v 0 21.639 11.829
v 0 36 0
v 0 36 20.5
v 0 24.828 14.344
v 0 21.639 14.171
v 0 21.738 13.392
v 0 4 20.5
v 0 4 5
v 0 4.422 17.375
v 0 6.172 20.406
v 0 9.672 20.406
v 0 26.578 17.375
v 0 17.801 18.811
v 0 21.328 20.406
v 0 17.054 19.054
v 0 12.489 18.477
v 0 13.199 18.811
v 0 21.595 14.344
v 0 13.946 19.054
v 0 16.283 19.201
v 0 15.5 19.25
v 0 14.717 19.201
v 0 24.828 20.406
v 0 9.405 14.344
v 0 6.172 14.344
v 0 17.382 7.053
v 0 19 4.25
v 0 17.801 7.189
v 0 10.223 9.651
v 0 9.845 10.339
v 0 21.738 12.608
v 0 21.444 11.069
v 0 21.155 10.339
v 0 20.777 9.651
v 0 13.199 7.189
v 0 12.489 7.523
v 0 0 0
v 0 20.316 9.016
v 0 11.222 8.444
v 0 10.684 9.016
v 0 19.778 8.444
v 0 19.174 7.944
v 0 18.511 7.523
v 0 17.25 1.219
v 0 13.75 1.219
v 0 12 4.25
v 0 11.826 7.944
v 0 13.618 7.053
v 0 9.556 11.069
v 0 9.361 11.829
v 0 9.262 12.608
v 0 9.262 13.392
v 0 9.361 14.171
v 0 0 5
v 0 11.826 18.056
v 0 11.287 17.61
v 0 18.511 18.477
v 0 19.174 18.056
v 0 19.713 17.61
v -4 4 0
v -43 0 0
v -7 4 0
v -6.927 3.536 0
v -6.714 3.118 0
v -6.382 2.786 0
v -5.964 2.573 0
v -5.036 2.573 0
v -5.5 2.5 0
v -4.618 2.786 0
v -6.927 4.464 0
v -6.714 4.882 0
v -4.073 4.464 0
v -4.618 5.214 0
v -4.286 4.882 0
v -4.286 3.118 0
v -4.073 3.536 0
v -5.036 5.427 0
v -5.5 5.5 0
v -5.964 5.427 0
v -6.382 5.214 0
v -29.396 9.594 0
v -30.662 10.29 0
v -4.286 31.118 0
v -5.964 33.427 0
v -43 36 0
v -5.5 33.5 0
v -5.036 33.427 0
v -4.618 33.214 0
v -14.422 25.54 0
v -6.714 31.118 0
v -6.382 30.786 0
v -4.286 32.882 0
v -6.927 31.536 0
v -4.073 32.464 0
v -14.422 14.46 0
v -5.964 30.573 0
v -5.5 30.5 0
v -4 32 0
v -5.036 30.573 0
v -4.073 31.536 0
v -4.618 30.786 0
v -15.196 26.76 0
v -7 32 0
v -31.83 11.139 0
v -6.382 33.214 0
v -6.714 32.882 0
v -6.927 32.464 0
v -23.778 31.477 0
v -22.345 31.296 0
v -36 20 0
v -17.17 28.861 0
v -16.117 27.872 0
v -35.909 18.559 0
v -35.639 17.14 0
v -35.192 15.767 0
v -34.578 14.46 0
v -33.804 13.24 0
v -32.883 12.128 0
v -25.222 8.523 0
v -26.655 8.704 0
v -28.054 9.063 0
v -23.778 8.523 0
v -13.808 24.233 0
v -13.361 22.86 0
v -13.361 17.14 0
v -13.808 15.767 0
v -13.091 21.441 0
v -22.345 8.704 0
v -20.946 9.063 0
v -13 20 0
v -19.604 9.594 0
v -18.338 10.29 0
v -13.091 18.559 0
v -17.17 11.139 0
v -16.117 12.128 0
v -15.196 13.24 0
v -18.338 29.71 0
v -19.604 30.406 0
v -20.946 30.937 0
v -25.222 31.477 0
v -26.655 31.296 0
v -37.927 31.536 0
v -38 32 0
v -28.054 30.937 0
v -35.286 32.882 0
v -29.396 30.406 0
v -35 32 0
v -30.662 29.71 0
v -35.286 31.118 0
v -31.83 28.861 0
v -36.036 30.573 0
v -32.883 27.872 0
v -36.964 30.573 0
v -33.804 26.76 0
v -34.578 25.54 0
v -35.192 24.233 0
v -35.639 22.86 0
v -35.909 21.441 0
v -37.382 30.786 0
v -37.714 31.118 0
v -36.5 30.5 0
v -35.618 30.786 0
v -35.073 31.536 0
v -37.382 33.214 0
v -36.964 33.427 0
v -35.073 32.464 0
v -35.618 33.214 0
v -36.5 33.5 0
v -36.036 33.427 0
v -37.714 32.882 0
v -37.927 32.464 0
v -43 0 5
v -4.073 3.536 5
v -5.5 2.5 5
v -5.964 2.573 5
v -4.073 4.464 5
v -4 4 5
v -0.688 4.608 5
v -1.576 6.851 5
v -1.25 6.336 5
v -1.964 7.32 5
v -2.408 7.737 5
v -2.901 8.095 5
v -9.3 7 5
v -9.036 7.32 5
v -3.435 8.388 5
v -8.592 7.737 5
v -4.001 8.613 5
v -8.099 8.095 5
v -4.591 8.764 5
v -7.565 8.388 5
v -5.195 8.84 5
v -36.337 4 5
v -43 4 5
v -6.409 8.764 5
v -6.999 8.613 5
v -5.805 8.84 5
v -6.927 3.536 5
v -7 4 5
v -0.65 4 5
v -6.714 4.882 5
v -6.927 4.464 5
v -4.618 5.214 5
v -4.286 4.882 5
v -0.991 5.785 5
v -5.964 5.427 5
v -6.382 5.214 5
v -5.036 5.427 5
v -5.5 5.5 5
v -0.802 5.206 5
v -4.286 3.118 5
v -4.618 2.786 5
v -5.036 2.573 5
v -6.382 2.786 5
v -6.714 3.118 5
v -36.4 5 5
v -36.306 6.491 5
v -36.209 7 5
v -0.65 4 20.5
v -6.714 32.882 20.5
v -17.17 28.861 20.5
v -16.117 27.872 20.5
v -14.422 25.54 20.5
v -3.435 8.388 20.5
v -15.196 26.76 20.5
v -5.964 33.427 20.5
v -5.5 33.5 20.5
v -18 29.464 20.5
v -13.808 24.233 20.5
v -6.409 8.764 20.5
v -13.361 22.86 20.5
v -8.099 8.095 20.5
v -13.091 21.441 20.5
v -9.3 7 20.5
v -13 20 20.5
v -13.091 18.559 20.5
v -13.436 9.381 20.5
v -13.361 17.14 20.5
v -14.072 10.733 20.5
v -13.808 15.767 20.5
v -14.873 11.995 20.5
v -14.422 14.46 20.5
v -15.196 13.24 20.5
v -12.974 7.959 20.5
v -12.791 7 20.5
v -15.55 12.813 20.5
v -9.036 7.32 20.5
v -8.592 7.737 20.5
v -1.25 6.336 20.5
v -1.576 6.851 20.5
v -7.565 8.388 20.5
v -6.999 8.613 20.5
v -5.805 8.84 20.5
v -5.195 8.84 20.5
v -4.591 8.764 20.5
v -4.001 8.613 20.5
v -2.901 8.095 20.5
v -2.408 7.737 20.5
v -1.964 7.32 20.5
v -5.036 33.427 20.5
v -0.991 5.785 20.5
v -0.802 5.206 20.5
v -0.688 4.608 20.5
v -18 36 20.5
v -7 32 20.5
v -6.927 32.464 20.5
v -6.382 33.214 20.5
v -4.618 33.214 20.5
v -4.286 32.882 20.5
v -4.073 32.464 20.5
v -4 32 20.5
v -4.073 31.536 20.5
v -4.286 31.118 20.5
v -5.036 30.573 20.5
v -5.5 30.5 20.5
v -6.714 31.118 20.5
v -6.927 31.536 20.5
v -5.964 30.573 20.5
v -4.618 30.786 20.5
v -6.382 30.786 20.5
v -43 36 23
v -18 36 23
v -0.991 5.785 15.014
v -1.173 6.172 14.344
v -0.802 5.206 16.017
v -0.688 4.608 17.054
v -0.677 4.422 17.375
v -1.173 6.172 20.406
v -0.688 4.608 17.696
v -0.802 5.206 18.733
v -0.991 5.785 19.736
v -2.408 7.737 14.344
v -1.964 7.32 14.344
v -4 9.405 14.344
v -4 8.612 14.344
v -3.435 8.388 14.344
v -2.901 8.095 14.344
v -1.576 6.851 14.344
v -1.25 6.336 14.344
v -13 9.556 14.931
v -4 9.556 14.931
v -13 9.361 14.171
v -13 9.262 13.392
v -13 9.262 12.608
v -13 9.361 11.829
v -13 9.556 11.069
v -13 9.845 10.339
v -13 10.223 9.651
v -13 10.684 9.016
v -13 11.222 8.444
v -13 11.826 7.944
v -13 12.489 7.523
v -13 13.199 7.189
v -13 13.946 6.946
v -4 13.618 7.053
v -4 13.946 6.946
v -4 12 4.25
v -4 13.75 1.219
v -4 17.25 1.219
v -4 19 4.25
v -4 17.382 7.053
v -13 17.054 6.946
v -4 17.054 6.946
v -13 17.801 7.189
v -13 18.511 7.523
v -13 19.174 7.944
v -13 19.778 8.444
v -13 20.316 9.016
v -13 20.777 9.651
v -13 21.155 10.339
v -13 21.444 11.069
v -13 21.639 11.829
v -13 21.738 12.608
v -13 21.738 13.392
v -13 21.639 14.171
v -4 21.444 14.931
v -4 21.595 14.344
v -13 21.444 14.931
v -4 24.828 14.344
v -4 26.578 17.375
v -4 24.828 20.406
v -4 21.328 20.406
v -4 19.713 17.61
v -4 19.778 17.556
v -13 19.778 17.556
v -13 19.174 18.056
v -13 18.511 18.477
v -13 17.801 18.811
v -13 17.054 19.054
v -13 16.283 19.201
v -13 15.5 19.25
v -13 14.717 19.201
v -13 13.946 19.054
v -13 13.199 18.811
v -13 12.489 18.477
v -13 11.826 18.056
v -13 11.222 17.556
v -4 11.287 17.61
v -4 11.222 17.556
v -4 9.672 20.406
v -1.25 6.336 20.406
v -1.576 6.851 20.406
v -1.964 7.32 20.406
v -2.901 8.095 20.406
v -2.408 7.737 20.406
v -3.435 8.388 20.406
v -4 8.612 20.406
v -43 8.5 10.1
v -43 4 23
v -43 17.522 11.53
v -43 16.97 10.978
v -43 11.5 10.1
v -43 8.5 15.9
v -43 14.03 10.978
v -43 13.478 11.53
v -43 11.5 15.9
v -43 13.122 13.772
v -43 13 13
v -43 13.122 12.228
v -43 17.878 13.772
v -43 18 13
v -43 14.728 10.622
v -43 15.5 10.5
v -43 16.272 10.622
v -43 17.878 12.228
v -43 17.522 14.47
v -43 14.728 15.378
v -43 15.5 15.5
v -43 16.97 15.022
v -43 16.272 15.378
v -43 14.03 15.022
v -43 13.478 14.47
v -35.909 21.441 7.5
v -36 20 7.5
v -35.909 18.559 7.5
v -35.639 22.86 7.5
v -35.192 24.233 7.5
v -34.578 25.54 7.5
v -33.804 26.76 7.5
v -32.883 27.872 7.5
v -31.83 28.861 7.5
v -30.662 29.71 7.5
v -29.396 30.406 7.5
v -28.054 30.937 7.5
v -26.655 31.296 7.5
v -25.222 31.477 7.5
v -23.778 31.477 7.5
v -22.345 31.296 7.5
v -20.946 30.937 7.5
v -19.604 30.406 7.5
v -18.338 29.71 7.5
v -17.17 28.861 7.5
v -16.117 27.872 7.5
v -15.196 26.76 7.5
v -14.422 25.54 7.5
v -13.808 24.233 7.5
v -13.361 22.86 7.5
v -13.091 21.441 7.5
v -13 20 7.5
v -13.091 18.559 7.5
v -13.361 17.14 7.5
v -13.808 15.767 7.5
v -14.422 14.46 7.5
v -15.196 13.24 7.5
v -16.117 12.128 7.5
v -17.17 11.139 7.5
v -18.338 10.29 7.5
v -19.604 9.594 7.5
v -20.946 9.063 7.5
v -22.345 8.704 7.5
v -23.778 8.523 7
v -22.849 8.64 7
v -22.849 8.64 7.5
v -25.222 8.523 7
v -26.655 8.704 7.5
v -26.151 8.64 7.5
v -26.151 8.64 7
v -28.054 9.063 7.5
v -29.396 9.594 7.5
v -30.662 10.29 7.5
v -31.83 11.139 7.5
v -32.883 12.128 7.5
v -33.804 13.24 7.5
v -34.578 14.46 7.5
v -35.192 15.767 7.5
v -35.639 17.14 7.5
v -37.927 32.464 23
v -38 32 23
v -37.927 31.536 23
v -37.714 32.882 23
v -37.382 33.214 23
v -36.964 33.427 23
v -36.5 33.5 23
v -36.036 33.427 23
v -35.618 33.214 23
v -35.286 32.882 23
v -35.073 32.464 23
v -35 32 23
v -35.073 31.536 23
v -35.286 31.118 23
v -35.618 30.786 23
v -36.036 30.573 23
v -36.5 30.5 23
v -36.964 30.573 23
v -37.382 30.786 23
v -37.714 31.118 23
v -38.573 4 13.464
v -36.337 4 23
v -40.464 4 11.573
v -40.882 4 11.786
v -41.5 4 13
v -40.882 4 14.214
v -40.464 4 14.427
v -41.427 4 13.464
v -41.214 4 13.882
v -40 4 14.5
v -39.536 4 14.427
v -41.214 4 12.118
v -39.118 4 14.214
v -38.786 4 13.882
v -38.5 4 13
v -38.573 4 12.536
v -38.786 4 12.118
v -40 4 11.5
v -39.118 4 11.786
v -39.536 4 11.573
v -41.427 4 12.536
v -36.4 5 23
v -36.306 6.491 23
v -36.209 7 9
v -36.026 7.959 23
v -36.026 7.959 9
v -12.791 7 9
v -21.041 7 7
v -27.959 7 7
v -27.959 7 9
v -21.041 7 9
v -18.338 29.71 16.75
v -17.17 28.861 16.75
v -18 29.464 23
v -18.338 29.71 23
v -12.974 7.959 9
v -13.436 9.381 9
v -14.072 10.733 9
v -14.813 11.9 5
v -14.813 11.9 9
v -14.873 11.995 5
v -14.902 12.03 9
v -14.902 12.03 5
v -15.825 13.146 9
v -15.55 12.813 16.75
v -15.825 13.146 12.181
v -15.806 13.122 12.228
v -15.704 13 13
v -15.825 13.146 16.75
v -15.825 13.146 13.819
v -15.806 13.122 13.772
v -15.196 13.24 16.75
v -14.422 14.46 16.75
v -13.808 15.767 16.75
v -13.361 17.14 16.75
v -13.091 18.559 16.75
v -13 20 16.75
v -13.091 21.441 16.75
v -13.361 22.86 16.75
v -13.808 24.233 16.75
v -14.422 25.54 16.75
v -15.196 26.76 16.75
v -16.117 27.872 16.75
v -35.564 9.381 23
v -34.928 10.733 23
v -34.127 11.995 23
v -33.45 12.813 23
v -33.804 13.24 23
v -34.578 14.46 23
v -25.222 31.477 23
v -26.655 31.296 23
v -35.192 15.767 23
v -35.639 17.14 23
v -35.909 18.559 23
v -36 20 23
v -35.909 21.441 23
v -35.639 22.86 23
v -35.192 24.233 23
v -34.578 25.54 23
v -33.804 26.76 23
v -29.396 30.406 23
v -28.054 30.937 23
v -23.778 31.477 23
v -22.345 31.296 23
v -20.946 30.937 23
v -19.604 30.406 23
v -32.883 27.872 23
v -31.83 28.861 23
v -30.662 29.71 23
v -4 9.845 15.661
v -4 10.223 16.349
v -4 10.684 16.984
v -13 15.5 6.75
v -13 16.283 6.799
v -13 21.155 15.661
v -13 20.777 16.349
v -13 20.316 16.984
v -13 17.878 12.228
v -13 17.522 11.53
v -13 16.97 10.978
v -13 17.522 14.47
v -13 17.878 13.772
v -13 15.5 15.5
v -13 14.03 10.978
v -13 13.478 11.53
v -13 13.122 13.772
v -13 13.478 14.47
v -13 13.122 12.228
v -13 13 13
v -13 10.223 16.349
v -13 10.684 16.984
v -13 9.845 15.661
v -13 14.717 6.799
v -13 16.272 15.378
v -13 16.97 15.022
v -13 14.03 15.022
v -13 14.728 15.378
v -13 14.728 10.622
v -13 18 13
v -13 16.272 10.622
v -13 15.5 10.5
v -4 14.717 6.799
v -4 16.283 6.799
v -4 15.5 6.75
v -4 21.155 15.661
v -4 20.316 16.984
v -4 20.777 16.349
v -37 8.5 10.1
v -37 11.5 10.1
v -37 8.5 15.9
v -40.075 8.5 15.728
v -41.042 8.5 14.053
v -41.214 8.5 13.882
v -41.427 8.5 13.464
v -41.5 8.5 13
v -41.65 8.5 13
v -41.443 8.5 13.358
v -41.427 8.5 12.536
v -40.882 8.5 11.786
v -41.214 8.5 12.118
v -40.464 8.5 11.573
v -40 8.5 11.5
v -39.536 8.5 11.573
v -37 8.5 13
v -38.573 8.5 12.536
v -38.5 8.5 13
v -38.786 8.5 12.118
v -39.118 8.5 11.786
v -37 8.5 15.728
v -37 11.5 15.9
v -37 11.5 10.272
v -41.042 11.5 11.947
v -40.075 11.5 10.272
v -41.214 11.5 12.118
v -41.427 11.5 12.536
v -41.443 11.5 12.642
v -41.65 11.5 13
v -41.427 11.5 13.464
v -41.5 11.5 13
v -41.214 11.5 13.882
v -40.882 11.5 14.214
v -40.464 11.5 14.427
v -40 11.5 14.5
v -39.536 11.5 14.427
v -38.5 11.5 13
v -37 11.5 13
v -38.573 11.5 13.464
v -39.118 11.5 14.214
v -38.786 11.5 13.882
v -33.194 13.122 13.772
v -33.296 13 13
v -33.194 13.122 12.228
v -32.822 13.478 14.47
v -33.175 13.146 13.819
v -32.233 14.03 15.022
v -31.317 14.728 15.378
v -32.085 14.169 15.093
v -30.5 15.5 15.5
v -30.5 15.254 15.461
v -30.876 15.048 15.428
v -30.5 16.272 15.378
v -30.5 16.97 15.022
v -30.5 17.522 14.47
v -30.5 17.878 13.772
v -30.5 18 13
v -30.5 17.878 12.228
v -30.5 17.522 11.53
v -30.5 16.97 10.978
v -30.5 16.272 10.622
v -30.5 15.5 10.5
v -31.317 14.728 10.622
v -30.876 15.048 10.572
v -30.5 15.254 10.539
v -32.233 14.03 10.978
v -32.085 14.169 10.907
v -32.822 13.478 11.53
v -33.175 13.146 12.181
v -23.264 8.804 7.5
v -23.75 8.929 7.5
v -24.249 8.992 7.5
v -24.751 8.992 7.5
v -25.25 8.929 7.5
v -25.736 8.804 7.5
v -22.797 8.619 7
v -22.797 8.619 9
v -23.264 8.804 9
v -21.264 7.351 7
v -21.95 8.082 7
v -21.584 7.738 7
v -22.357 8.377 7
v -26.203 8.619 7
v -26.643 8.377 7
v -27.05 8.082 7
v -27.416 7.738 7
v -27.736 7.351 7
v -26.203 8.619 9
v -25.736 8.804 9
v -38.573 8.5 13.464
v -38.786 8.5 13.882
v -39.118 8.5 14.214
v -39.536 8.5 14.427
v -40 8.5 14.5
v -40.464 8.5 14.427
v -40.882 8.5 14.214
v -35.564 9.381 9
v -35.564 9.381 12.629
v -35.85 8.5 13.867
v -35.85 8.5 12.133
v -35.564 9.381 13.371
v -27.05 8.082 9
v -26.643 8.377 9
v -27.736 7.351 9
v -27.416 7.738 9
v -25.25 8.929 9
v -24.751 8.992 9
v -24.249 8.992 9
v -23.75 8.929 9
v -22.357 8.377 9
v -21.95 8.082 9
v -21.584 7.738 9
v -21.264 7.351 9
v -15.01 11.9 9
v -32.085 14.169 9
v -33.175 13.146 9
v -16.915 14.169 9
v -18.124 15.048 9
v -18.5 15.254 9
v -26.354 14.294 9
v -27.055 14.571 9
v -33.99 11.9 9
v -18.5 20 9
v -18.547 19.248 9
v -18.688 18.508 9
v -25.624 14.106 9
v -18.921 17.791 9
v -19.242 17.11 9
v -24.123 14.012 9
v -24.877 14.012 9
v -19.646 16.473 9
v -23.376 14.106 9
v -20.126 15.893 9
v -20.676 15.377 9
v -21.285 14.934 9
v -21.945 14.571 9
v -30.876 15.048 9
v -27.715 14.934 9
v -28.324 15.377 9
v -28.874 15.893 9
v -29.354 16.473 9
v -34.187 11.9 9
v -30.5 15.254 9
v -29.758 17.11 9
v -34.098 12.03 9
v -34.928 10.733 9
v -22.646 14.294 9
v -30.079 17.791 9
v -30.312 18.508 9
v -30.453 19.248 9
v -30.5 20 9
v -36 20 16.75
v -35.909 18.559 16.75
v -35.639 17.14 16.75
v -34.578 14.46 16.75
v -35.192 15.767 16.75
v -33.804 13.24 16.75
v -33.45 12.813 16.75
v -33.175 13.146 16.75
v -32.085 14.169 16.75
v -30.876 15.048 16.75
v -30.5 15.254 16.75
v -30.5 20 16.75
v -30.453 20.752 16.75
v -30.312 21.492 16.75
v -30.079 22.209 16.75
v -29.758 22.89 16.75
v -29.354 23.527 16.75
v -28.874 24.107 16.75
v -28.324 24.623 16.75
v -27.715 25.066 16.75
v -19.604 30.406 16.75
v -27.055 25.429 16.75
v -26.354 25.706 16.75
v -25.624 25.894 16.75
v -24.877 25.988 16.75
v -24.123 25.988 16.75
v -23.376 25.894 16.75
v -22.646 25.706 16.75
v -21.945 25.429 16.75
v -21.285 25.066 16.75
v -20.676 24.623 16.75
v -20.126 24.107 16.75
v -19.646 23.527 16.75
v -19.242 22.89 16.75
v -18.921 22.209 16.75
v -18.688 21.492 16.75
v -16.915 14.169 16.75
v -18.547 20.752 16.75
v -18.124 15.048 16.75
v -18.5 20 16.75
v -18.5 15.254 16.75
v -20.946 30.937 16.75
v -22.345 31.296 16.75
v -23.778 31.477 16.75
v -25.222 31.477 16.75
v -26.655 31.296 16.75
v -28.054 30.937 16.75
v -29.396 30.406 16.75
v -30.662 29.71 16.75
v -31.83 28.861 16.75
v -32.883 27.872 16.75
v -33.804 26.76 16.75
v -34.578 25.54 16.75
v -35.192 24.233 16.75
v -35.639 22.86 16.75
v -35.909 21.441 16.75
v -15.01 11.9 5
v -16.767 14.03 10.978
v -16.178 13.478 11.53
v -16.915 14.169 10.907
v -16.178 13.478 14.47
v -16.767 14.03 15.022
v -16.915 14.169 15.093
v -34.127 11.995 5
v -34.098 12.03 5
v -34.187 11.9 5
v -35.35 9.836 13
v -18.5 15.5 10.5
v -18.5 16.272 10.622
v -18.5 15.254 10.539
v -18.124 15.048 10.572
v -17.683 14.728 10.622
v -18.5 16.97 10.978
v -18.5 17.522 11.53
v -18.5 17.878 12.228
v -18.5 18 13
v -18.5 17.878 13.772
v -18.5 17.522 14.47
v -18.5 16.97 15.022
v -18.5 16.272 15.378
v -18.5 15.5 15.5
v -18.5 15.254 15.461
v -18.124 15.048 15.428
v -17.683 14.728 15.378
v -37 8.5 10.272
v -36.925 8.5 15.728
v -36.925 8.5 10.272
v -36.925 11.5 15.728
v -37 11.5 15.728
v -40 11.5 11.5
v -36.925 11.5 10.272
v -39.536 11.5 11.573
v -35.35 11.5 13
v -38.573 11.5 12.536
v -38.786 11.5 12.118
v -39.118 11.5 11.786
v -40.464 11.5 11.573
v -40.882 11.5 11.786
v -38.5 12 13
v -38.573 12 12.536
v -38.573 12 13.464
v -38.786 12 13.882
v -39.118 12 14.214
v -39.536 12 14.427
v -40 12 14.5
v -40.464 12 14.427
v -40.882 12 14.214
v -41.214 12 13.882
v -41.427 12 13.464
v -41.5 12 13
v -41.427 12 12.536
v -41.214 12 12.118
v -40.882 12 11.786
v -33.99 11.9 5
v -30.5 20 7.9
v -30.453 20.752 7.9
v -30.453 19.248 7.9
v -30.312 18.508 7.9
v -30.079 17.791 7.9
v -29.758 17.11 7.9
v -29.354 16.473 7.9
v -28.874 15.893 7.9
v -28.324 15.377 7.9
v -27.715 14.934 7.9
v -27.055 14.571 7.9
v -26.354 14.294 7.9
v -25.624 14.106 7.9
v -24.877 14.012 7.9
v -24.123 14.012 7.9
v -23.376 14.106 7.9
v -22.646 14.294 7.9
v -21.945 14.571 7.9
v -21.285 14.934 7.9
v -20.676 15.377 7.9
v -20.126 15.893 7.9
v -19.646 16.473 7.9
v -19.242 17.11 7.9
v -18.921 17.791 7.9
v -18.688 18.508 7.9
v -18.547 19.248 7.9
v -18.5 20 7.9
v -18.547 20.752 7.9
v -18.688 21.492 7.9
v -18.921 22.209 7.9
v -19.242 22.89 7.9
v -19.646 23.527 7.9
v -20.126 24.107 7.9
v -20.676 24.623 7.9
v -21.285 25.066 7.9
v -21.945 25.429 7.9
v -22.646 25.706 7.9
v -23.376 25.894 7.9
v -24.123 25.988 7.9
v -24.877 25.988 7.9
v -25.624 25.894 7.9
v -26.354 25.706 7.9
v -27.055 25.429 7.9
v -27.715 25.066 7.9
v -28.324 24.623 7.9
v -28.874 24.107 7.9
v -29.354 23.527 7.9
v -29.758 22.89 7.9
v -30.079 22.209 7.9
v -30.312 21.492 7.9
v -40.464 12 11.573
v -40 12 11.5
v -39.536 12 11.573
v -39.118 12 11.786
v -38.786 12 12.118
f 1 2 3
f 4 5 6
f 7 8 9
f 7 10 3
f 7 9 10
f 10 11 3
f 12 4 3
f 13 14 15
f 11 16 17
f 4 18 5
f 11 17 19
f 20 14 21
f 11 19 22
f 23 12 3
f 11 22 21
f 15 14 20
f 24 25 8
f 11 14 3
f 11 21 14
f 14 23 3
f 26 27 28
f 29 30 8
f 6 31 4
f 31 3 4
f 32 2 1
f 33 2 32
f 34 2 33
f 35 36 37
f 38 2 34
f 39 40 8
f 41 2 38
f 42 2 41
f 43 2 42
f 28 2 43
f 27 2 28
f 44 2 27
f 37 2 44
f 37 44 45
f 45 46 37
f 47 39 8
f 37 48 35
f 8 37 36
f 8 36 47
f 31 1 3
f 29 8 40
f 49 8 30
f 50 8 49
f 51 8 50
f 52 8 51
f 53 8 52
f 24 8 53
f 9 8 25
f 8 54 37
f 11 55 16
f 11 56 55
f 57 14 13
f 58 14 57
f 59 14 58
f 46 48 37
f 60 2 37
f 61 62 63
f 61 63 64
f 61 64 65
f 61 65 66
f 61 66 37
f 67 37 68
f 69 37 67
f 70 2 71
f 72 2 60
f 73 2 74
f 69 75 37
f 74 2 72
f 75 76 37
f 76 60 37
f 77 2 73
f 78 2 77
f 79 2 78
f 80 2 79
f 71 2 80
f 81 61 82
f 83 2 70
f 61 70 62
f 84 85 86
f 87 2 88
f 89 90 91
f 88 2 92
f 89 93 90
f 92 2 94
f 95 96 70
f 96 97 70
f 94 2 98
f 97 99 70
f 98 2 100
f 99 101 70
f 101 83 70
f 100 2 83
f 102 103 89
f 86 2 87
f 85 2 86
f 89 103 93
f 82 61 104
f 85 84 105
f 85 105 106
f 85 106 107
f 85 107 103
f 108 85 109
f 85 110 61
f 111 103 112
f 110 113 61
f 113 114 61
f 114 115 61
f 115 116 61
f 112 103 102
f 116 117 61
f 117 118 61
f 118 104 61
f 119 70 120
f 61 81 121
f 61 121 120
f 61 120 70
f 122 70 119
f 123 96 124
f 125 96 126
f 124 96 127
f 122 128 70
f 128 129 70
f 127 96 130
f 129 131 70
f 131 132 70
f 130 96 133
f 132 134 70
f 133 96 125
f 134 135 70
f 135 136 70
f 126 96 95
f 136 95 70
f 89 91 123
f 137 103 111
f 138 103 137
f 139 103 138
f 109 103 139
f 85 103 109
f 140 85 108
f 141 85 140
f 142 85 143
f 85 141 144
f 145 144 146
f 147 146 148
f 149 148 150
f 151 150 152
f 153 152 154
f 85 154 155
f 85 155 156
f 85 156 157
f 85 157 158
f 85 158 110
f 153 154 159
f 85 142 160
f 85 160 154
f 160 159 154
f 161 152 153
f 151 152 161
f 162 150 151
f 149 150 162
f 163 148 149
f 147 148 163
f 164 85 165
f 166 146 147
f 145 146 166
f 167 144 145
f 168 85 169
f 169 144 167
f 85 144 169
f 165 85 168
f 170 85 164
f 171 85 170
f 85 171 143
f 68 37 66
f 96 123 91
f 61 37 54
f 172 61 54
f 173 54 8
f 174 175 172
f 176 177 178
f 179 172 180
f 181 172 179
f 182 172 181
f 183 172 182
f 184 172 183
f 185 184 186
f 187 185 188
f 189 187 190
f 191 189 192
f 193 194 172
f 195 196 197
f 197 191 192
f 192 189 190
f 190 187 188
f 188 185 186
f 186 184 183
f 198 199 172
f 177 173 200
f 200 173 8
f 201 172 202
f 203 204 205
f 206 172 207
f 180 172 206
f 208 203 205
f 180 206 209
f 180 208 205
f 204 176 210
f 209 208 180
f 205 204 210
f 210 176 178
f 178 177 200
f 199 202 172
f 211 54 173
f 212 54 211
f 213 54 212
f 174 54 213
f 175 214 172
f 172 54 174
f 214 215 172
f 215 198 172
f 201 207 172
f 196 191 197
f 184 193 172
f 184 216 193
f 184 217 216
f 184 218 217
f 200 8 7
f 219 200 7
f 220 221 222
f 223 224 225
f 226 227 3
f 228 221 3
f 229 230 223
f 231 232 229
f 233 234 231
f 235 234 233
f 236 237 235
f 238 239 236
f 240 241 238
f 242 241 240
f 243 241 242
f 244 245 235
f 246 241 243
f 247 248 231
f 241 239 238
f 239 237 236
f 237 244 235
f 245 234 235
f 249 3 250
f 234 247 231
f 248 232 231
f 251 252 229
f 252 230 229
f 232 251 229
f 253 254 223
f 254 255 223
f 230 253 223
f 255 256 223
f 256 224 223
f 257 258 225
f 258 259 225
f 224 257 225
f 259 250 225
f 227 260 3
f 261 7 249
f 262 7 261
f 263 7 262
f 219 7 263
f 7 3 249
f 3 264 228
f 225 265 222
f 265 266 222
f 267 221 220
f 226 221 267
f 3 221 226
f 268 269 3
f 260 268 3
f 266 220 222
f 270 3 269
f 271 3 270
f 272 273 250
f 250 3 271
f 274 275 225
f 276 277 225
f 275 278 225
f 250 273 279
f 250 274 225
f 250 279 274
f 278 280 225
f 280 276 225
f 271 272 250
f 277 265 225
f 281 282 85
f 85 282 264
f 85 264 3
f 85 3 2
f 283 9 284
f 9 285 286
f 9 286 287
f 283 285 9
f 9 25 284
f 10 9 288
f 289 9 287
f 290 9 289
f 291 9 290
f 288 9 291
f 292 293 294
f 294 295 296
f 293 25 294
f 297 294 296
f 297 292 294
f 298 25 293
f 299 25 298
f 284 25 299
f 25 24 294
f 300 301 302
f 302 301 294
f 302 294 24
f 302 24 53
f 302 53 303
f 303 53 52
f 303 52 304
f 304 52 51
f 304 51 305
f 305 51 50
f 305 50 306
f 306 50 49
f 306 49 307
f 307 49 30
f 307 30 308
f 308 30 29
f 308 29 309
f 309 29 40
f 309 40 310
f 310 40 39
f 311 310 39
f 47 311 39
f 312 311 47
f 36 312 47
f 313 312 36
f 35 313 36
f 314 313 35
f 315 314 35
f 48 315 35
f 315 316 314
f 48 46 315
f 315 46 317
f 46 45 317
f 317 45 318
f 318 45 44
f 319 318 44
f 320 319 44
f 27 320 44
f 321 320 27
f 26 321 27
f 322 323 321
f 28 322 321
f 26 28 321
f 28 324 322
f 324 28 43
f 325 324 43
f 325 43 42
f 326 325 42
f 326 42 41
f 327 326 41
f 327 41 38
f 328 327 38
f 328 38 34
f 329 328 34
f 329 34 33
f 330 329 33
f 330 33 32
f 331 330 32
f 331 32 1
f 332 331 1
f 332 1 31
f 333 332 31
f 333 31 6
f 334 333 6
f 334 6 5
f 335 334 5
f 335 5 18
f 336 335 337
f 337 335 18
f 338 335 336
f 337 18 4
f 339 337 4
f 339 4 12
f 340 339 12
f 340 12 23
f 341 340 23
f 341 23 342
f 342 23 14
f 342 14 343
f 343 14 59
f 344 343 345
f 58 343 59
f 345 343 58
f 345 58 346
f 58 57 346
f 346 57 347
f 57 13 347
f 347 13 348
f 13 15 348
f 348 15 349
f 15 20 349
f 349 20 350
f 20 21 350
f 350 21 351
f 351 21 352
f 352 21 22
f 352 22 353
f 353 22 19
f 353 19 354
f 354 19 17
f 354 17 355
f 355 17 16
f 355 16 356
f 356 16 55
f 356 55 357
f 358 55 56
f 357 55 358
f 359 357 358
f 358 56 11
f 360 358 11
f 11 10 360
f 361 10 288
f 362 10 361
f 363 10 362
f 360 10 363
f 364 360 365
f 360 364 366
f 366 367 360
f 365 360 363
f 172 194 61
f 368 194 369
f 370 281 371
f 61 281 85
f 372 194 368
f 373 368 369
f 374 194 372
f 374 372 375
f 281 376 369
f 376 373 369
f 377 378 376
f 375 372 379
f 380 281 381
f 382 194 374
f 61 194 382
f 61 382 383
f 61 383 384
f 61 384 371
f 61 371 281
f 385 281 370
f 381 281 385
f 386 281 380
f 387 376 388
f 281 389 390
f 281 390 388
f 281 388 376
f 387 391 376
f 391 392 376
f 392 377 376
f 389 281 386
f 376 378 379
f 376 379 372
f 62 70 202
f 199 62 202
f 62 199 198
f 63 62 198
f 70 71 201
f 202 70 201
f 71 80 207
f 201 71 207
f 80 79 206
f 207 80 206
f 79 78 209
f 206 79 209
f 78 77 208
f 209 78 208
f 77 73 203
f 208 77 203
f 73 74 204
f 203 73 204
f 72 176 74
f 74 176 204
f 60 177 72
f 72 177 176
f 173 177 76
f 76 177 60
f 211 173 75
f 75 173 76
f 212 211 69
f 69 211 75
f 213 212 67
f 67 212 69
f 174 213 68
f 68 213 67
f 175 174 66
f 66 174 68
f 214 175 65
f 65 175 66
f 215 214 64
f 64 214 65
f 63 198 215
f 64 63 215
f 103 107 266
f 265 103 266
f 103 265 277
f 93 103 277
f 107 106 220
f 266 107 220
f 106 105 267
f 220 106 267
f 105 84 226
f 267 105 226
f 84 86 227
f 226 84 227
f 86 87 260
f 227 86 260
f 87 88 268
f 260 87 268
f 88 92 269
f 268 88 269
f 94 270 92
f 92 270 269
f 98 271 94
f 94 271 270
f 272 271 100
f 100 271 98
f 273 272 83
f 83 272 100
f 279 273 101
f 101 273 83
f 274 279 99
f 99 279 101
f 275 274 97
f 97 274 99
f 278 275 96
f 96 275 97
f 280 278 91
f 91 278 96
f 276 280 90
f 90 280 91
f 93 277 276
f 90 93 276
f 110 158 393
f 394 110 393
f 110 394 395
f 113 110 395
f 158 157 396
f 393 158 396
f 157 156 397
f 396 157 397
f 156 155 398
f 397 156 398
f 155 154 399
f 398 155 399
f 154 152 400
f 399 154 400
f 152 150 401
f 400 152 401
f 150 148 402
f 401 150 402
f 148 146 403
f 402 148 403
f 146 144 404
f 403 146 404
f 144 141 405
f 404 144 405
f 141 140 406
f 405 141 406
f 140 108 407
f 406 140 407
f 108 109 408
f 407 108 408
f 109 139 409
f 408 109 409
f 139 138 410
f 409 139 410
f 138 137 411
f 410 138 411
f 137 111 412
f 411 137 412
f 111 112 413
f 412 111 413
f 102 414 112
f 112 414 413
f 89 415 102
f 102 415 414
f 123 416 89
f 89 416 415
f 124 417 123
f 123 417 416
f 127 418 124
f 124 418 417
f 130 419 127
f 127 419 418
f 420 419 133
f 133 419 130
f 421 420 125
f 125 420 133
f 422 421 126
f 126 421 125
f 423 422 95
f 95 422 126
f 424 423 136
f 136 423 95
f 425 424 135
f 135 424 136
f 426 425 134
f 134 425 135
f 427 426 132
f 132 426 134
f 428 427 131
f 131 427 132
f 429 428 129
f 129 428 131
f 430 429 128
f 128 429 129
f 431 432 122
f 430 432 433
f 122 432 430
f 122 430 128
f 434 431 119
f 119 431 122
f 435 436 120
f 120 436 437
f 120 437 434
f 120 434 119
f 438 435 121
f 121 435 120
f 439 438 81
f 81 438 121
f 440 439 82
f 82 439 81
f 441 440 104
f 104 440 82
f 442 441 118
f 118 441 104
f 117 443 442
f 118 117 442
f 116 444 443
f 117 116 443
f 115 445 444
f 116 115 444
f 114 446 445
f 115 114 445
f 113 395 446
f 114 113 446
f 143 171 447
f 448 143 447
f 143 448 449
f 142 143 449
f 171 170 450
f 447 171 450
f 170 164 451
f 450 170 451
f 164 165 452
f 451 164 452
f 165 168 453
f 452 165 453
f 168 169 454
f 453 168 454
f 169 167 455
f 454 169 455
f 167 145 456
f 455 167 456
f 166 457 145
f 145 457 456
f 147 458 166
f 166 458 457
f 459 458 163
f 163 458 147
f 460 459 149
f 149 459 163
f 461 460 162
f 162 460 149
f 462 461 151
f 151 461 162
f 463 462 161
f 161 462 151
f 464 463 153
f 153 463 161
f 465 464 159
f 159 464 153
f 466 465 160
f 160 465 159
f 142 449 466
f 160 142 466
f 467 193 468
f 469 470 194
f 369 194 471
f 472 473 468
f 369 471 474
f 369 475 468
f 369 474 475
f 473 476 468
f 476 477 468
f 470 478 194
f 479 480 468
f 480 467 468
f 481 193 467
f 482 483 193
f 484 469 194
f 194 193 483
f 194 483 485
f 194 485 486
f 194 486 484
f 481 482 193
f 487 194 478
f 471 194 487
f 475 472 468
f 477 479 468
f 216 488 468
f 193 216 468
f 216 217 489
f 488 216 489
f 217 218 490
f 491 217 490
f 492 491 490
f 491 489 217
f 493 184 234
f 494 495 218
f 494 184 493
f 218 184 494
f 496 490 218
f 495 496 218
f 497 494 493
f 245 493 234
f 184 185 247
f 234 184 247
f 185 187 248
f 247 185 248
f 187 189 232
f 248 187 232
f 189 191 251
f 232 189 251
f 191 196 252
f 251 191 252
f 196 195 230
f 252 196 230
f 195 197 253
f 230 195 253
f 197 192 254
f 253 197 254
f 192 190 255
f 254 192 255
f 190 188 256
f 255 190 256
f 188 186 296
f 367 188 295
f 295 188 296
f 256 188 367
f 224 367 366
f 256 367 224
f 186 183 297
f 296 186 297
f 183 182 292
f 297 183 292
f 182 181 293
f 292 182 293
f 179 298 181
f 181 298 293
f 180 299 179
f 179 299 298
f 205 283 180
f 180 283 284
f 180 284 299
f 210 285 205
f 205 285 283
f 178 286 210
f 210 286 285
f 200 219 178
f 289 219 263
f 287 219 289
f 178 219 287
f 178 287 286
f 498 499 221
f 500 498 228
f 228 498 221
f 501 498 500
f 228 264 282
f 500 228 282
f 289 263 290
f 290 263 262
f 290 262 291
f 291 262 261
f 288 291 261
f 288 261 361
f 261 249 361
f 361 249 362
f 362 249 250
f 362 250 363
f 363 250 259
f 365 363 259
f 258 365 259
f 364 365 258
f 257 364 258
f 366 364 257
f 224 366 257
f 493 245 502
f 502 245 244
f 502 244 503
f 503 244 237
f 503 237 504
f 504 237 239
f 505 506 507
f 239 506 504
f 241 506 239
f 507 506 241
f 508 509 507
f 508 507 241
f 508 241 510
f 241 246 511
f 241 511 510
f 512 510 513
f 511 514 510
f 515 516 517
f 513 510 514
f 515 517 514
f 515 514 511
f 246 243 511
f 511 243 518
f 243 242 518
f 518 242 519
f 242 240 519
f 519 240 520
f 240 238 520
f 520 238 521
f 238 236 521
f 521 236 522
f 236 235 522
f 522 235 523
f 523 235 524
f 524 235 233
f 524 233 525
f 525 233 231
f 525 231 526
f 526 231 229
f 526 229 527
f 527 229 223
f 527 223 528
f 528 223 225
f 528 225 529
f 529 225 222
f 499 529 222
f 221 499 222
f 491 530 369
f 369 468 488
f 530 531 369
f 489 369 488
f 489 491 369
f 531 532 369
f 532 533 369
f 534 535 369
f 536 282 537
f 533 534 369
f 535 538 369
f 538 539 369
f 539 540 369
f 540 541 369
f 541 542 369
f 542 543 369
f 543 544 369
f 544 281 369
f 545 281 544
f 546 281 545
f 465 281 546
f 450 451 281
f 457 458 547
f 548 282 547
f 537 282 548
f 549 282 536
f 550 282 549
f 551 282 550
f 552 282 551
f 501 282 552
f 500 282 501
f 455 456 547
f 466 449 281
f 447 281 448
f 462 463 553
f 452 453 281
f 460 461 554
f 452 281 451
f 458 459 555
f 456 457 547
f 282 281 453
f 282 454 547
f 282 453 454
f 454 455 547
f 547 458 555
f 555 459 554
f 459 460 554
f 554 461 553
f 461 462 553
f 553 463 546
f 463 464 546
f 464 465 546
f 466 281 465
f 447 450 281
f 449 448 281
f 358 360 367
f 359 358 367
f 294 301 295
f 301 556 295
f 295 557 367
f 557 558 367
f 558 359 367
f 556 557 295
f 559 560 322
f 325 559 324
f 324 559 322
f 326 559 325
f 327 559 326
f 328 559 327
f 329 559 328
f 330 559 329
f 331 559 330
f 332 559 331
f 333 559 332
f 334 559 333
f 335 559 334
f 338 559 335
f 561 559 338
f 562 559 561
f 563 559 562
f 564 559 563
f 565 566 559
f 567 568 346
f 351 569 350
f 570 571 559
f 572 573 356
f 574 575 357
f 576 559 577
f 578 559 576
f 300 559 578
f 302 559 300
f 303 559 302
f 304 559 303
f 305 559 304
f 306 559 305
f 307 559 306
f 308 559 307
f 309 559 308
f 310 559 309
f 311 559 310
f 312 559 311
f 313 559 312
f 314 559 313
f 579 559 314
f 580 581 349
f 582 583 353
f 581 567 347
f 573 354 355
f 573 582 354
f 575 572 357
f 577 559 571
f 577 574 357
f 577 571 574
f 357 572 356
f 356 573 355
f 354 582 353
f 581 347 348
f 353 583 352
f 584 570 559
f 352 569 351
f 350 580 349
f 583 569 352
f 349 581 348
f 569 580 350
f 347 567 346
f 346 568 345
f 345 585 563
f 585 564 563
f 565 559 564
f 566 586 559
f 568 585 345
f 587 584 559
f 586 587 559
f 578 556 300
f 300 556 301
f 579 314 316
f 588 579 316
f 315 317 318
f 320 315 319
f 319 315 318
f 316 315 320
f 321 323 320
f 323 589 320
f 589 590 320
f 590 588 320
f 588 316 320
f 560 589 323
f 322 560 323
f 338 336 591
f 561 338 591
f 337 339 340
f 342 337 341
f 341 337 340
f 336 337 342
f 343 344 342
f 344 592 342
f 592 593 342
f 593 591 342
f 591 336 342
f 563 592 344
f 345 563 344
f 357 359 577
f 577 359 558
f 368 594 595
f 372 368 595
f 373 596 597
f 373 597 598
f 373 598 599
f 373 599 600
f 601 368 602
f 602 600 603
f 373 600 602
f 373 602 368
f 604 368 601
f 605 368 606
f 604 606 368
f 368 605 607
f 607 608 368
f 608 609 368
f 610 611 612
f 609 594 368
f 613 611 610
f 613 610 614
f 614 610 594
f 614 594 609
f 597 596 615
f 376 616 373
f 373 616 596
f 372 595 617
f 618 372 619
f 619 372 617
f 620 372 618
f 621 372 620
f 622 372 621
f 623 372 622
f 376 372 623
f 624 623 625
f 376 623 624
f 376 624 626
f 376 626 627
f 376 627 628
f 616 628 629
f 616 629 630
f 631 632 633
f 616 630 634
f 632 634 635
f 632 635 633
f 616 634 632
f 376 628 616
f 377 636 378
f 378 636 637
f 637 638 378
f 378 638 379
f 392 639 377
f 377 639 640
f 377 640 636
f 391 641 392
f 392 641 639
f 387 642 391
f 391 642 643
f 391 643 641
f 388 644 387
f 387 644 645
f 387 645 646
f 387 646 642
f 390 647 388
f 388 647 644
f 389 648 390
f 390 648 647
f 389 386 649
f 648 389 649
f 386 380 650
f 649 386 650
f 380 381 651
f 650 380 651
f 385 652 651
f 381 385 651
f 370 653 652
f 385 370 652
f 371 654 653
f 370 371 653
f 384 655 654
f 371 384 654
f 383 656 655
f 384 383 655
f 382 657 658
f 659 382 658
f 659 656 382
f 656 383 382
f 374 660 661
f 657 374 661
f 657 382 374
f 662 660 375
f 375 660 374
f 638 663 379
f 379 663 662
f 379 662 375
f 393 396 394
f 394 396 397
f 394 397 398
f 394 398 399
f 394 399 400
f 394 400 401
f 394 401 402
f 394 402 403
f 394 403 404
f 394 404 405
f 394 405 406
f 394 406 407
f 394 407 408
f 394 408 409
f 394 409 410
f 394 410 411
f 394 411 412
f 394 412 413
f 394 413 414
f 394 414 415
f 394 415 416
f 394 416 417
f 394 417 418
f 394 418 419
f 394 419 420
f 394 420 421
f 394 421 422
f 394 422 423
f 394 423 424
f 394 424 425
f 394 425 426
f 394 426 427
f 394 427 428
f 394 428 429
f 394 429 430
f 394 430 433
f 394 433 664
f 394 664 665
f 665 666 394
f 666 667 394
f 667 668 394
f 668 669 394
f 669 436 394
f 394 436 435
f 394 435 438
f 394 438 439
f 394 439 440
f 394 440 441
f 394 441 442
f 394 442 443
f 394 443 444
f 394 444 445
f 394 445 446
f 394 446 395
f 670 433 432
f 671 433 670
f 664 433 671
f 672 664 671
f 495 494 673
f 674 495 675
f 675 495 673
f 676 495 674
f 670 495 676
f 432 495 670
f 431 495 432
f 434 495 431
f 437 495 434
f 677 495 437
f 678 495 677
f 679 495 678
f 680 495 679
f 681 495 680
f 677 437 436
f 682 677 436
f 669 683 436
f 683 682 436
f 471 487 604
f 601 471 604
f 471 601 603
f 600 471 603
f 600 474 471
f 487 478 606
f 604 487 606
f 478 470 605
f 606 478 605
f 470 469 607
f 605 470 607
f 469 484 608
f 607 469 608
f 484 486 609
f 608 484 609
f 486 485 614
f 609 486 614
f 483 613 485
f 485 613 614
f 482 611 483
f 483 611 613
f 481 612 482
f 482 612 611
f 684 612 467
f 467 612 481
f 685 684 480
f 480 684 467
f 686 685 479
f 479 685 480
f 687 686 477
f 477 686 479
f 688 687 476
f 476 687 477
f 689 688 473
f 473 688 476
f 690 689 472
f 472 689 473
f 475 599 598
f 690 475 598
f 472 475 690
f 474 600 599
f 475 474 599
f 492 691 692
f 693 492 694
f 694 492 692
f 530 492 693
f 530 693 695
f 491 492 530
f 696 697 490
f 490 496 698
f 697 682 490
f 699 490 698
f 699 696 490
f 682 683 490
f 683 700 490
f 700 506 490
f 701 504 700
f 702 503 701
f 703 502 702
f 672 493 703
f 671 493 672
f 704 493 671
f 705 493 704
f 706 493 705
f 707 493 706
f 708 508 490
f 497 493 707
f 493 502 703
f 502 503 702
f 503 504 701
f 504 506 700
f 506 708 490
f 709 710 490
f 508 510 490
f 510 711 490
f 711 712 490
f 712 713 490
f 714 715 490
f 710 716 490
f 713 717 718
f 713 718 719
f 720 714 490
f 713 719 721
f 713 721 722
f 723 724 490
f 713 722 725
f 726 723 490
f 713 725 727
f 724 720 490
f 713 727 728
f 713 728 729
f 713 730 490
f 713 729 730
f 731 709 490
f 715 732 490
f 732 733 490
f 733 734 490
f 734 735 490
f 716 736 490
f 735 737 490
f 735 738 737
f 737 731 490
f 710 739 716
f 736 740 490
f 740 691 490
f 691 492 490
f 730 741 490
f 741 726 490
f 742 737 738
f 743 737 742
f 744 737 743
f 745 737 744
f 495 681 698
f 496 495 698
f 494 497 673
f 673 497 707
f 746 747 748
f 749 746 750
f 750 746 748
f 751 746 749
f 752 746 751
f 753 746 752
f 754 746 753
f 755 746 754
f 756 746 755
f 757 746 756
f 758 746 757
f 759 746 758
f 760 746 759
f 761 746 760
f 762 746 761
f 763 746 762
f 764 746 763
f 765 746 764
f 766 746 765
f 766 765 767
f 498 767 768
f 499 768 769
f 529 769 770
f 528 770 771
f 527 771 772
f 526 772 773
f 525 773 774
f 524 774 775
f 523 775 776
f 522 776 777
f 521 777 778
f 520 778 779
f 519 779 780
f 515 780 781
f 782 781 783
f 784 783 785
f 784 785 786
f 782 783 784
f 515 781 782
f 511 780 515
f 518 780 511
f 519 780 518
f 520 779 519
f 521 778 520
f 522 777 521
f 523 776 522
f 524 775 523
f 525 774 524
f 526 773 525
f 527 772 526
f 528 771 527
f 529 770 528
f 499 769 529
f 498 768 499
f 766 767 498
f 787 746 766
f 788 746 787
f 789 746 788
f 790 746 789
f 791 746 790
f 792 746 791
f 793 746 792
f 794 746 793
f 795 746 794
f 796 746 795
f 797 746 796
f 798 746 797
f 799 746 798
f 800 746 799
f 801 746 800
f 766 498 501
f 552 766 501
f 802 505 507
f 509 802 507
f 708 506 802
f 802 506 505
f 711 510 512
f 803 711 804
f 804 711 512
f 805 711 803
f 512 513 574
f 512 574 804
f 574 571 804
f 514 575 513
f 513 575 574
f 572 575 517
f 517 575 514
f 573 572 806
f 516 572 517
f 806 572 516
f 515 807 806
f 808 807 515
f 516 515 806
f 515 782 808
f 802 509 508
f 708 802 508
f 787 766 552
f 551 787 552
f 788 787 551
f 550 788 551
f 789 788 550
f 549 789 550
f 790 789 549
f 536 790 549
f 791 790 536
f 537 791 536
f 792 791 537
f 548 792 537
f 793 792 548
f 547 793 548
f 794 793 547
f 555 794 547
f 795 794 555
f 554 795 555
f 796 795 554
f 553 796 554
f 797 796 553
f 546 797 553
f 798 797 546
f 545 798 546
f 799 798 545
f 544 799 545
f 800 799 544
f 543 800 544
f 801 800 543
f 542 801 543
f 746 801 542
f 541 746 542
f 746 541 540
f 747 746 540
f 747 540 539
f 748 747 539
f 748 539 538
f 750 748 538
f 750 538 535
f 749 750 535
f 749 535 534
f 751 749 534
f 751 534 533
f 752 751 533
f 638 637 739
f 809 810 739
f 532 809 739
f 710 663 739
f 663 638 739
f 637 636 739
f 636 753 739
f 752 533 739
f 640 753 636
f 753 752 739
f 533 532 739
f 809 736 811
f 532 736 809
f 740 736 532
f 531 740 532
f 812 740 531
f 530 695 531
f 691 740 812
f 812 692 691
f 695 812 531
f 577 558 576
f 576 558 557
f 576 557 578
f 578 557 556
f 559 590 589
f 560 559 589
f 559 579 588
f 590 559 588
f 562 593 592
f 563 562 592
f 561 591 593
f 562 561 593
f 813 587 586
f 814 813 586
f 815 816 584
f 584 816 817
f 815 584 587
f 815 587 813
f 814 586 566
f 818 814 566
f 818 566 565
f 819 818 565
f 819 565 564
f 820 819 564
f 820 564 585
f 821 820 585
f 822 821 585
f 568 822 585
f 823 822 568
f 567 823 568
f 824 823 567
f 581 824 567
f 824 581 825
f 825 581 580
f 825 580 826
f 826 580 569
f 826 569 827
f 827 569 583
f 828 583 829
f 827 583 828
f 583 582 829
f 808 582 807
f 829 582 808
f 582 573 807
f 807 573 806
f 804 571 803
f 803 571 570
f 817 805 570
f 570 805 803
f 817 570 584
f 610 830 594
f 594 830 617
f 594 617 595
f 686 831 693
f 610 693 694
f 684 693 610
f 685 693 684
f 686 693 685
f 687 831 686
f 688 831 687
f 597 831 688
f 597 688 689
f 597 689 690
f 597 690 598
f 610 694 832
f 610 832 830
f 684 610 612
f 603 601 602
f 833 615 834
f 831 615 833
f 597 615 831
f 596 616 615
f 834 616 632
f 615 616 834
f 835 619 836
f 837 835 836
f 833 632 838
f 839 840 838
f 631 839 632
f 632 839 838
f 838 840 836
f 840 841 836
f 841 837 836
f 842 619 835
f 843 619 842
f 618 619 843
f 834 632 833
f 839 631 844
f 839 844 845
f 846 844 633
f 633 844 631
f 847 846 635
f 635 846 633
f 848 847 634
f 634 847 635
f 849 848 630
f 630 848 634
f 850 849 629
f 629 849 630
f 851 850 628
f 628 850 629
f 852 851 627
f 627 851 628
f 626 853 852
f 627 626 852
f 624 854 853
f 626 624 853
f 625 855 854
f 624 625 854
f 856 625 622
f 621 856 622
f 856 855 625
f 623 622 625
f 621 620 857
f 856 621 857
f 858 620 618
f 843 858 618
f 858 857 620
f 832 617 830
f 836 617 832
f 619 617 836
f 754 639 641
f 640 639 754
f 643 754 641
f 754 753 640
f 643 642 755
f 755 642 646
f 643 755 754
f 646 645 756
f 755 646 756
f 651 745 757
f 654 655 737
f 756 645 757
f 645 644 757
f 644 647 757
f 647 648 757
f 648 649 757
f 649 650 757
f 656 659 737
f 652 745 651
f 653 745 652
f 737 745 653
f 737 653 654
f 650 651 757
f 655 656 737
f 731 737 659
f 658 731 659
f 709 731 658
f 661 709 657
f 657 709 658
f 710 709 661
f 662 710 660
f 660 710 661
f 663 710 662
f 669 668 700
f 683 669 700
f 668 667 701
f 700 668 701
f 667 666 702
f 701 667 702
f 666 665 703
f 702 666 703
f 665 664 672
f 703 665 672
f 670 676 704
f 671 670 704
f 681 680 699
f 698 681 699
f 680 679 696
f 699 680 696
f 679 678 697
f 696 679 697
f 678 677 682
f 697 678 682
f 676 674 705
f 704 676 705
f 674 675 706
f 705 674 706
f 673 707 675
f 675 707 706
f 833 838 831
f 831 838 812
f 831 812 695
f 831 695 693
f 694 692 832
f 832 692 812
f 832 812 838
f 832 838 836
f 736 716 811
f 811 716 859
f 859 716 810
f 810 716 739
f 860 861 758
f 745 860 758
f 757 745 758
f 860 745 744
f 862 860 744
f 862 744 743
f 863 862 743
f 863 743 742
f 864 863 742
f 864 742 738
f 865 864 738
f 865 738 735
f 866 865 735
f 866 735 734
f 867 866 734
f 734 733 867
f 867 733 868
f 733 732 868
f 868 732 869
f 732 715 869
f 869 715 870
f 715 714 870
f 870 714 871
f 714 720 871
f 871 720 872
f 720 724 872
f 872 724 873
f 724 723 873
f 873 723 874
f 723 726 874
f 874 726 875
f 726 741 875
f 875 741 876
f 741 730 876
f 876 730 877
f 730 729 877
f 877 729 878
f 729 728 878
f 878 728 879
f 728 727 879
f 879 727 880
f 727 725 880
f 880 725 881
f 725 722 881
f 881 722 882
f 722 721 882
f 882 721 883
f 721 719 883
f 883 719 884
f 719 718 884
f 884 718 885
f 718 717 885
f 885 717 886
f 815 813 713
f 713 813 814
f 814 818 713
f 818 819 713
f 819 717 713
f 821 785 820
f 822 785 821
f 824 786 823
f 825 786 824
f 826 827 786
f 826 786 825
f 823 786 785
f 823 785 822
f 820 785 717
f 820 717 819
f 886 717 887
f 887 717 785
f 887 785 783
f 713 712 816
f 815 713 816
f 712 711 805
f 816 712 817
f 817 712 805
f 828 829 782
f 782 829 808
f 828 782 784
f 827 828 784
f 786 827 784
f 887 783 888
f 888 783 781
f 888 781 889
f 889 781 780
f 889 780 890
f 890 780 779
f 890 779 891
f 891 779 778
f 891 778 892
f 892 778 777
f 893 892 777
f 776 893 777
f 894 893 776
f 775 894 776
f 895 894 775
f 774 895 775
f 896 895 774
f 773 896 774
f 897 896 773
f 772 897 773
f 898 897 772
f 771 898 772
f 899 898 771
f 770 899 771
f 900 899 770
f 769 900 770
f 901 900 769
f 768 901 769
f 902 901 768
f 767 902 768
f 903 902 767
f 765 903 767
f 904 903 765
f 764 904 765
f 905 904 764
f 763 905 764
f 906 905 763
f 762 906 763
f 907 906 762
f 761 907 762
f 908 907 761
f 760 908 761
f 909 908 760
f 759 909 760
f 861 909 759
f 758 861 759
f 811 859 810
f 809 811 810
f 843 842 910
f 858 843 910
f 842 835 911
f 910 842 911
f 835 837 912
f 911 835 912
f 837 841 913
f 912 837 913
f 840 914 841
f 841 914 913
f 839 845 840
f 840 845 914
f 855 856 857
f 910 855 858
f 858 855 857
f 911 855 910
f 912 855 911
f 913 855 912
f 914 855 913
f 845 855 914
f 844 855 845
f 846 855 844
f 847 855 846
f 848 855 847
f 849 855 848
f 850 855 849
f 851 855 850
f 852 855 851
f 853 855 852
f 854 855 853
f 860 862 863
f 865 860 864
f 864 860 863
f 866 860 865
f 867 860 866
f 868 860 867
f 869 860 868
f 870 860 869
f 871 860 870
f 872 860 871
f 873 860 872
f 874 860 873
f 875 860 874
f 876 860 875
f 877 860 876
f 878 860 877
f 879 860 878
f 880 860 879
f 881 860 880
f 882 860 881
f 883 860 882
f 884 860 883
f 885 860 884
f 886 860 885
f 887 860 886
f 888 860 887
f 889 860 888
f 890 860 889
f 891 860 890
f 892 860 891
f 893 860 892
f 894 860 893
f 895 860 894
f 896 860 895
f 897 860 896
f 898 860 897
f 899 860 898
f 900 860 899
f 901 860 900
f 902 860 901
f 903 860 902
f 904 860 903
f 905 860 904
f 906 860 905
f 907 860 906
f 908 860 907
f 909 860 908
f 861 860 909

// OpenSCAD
x=43;
y=36;
z=23;

d1=3;
d2=23;
d3=12;
d4=9.7;
d5=5;
d6=12.5;

x0=5.5;
y0=4;
x1=24.5;
y1=20;
z1=z-6.25;

y2=15.5;
z2=13;
y22=15.5;
z22=13;
y3=3;
z3=6.3;

y4=4;
y5=9;
z4=2.5;
x5=24.5;
y6=5;
x6=14;
z6=5;

module nut() {
	translate([0,0,8.75])rotate([90,0,90])cylinder(z6,r=7/2,$fa=60);
}

// freecad positioning
//translate([15.5,13,17.5])rotate([-90,-90,180])
mirror([1,0,0])
union() {
difference() {
	// main part
	cube([x,y,z]);

	// horizontal section
	//translate([-1,-1,1])cube([x+2,y+2,z]);

	// bolts
	translate([x0,y0,-1])cylinder(z+2,r=d1/2,$fn=20);
	translate([x0,y-y0,-1])cylinder(z+2,r=d1/2,$fn=20);
	translate([x-x0-1,y-y0,-1])cylinder(z+2,r=d1/2,$fn=20);

	// hobbed bolt
	%translate([x1,y1,-1])cylinder(z+2,r=5.8/2,$fn=50);
	%translate([x1,y1,-1])cylinder(z+2,r=4,$fn=50);

	// bearings
	translate([x1,y1,-1])cylinder(z+2,r=d3/2,$fn=50);
	translate([x1,y1,z1])cylinder(7,r=d2/2,$fn=50);
	translate([x1-d3/2,y1-8,z1-7.8])cube([d3,8,9]);
	translate([x1,y1,-1])cylinder(8.5,r=d2/2,$fn=50);

	// part19 slot
	translate([-1,-1,5])cube([x+2,y4+1,z-4]);
	translate([x0,-1,5])cube([x/2-x0,8,z-4]);
	translate([x0,4,5])cylinder(z-4,r=d4/2,$fn=50);

	// part19 bearing
	translate([x5,y6,5])cylinder(z-4,r=d2/2+0.4,$fn=50);
	%translate([x5,y6,7])cylinder(13,r=4,$fn=50);
	%translate([x5,y6,10])cylinder(7,r=11,$fn=50);

	// part19 nut
	translate([x-4.5,y2-7,z2])rotate([-90,0,0])cylinder(y3,r=z3/2,$fa=60);
	translate([x-6,y2-7,z2-z3/2+0.25])cube([7,y3,z3-0.5]);
	translate([x-3,y4-1,z2])rotate([-90,0,0])cylinder(y5,r=d1/2,$fn=20);

	// profile slot
	translate([-1,-1,z-z4])cube([19,y+2,z4+1]);

	// ABS plastic 3mm
	%translate([-1,y2,z2])rotate([0,90,0])cylinder(x+2,r=3/2,$fn=20);
	translate([x1,y2,z2])rotate([0,90,0])cylinder(x-x1+1,r=d5/2,$fn=20);
	translate([-1,y22,z22])rotate([0,90,0])cylinder(x1+1,r=d5/2,$fn=20);

	// hotend
	translate([-1,y22,z22])rotate([0,90,0])cylinder(x6,r=d6/2,$fn=50);

	// hotend nuts
	for(i=[0:2])translate([-1,y22,z2])rotate([120*i+60,0,0])nut();
	//translate([-1,y22-13.5,z-z4+1])rotate([0,90,0])cube([7.15,8,z6-.2]);
}

// bearing cap & support
difference() {
	union() {
		translate([x1,y1,0.5])cylinder(8.5,r=d2/2+1,$fn=50);
		translate([12.5,6.9,0.5])cube([24,5,8.5]);
	}
	translate([x1,y1,7.9])cylinder(15,r=d3/2,$fn=50);
	translate([x1,y1,-1])cylinder(8.5,r=d2/2,$fn=50);
	translate([0.5,y1-d2/4,0.5])cube([14.5,d2/2,10]);
	translate([12,2,0.5])cube([25,5,9]);
	translate([-1,y22,z22])rotate([0,90,0])cylinder(x6,r=d6/2,$fn=50);
	translate([x5,y6,7])cylinder(13,r=4,$fn=50);
}
}
